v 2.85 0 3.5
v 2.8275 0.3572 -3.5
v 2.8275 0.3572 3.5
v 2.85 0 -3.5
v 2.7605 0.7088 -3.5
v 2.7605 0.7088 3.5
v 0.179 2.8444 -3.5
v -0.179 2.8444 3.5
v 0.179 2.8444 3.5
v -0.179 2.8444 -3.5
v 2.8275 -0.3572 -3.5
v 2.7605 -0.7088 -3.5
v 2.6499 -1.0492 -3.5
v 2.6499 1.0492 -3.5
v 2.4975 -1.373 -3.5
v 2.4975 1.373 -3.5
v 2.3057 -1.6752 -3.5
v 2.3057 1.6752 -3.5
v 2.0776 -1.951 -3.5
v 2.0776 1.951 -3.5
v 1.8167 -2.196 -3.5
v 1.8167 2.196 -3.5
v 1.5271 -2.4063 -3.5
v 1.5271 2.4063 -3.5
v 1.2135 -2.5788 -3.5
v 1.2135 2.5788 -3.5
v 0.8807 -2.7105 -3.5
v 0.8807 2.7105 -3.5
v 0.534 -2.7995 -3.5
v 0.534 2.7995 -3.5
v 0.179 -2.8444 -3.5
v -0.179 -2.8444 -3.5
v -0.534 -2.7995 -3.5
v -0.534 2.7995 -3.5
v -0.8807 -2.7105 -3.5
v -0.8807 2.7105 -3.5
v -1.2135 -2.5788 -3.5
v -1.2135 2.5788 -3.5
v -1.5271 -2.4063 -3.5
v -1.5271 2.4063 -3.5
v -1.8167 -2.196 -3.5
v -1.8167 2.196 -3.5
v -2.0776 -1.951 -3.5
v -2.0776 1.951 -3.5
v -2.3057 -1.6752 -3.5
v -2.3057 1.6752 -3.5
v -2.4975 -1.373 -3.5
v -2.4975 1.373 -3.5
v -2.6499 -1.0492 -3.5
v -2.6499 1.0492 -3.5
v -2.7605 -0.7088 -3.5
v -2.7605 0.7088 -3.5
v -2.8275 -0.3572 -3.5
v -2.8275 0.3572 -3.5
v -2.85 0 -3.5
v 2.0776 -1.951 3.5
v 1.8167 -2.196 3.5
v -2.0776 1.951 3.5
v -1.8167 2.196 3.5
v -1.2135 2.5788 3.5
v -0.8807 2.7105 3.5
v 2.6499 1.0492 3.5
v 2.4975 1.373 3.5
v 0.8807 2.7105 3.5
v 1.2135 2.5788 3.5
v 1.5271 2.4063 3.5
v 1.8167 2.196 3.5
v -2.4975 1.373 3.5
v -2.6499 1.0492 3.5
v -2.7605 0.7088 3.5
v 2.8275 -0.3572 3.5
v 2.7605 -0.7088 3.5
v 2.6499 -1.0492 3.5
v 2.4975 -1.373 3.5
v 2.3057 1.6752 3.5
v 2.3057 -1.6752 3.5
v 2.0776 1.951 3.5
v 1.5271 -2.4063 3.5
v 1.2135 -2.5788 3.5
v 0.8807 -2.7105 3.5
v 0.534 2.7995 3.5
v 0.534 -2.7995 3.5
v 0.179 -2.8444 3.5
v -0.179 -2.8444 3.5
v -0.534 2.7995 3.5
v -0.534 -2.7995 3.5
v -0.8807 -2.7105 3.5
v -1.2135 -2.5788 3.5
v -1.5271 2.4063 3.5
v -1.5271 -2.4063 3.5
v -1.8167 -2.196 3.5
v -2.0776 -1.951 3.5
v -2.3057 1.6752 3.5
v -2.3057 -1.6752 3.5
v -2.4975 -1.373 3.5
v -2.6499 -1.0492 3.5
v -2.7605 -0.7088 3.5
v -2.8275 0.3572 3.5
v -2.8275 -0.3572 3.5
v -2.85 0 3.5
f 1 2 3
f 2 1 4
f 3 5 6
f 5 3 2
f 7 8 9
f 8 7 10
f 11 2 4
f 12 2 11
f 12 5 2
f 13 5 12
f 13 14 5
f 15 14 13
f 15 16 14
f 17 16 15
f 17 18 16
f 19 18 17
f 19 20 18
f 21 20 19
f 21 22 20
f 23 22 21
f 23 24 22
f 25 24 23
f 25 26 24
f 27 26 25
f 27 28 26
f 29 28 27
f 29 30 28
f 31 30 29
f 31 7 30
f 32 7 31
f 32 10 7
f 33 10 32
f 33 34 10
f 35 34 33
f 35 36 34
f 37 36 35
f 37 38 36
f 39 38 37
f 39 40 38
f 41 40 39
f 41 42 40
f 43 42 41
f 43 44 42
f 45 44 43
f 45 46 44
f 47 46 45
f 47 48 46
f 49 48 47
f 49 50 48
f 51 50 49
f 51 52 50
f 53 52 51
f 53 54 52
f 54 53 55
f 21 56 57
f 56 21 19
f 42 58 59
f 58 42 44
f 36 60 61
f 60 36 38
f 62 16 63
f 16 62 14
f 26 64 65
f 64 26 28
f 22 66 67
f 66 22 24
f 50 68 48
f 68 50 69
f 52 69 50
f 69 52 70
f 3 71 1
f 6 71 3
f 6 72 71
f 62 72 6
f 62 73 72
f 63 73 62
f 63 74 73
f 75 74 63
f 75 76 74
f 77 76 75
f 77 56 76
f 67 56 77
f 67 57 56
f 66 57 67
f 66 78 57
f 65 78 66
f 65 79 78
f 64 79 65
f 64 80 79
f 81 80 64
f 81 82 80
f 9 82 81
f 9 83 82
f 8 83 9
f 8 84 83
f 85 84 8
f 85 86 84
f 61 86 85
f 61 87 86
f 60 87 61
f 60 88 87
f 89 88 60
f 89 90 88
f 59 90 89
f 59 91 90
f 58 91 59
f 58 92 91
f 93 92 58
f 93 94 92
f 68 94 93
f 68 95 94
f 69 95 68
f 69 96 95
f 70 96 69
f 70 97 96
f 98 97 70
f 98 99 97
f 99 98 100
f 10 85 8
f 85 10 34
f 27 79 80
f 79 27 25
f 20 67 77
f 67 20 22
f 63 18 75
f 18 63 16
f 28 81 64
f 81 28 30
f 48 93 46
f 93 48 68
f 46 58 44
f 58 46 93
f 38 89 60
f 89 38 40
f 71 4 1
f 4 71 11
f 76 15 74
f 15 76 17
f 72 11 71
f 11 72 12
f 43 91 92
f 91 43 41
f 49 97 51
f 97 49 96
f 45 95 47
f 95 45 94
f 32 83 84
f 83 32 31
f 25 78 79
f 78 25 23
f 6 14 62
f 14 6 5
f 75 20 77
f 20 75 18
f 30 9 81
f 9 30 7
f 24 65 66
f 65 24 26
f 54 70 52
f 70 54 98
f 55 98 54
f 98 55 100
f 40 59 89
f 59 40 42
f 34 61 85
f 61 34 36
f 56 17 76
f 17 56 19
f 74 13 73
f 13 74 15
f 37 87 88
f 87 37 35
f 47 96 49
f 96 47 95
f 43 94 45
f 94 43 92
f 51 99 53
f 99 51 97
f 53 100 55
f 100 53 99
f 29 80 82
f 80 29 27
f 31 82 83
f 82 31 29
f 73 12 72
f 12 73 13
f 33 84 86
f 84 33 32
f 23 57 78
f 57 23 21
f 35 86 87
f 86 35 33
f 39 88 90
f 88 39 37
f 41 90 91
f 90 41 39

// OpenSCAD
$fn = 50;


difference() {
	union() {
		translate(v = [0, 0, -3.5000000000]) {
			cylinder(h = 7, r = 2.8500000000);
		}
	}
	union() {
		translate(v = [0, 0, -100.0000000000]) {
			cylinder(h = 200, r = 0);
		}
	}
}
